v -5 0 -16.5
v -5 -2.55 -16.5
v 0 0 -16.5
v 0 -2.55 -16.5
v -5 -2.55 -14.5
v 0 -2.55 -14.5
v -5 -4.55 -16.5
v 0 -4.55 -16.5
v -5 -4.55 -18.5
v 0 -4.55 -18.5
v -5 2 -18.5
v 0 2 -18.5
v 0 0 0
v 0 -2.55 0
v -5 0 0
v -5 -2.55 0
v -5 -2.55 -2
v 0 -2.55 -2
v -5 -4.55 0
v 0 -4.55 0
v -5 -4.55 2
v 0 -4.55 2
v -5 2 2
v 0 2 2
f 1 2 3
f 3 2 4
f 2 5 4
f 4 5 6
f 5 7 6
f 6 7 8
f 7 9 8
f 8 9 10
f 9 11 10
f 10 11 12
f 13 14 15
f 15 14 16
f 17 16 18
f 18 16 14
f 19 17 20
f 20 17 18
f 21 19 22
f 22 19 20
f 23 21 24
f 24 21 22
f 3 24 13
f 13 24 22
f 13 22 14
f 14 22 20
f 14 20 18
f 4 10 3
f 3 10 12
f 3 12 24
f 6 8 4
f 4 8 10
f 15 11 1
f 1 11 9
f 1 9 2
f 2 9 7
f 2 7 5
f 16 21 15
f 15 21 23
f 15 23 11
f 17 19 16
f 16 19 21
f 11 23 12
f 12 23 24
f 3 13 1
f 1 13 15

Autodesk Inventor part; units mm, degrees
ref_plane "YZ Plane" through (0, 0, 0) normal (1, 0, 0) x (0, 1, 0)
ref_plane "XZ Plane" through (0, 0, 0) normal (0, 1, 0) x (-1, 0, 0)
ref_plane "XY Plane" through (0, 0, 0) normal (0, 0, 1) x (1, 0, 0)
sketch "Эскиз1" plane through (0, 0, 0) normal (0, 1, 0) x (-1, 0, 0)
  line L0 (0, 0) -> (5, 0)
  line L1 (5, 0) -> (5, -8.25)
  line L2 (5, -8.25) -> (0, -8.25)
  line L3 (0, -8.25) -> (0, 0)
  dimension "d0" = 5
  dimension "d1" = 8.25
extrude "Выдавливание1" add sketch "Эскиз1" along normal blind 2
sketch "Эскиз2" plane through (-5, 0, -8.25) normal (-1, 0, 0) x (0, 0, 1)
  line L0 (8.25, 2) -> (0, 2) projected
  line L1 (8.25, 2) -> (10.25, 2)
  line L2 (10.25, 2) -> (10.25, -4.55)
  line L3 (10.25, -4.55) -> (8.25, -4.55)
  line L4 (8.25, -4.55) -> (8.25, 2)
  line L5 (8.25, -4.55) -> (6.25, -4.55)
  line L6 (6.25, -4.55) -> (6.25, -2.55)
  line L7 (6.25, -2.55) -> (8.25, -2.55)
  line L8 (8.25, -2.55) -> (8.25, -4.55)
  line L9 (6.25, -2.55) -> (8.25, -4.55)
  point P0 (8.25, 0)
  dimension "d4" = 2
  dimension "d5" = 6.55
  dimension "d6" = 2
  dimension "d7" = 2
extrude "Выдавливание2" add sketch "Эскиз2" against normal blind 5 contours L1 L2 L3 L4 | L4 L9 L7
mirror "Зеркальное отражение1" about plane through (0, 0, -8.25) normal (0, 0, -1)
properties part number "Тестовая крышка"
